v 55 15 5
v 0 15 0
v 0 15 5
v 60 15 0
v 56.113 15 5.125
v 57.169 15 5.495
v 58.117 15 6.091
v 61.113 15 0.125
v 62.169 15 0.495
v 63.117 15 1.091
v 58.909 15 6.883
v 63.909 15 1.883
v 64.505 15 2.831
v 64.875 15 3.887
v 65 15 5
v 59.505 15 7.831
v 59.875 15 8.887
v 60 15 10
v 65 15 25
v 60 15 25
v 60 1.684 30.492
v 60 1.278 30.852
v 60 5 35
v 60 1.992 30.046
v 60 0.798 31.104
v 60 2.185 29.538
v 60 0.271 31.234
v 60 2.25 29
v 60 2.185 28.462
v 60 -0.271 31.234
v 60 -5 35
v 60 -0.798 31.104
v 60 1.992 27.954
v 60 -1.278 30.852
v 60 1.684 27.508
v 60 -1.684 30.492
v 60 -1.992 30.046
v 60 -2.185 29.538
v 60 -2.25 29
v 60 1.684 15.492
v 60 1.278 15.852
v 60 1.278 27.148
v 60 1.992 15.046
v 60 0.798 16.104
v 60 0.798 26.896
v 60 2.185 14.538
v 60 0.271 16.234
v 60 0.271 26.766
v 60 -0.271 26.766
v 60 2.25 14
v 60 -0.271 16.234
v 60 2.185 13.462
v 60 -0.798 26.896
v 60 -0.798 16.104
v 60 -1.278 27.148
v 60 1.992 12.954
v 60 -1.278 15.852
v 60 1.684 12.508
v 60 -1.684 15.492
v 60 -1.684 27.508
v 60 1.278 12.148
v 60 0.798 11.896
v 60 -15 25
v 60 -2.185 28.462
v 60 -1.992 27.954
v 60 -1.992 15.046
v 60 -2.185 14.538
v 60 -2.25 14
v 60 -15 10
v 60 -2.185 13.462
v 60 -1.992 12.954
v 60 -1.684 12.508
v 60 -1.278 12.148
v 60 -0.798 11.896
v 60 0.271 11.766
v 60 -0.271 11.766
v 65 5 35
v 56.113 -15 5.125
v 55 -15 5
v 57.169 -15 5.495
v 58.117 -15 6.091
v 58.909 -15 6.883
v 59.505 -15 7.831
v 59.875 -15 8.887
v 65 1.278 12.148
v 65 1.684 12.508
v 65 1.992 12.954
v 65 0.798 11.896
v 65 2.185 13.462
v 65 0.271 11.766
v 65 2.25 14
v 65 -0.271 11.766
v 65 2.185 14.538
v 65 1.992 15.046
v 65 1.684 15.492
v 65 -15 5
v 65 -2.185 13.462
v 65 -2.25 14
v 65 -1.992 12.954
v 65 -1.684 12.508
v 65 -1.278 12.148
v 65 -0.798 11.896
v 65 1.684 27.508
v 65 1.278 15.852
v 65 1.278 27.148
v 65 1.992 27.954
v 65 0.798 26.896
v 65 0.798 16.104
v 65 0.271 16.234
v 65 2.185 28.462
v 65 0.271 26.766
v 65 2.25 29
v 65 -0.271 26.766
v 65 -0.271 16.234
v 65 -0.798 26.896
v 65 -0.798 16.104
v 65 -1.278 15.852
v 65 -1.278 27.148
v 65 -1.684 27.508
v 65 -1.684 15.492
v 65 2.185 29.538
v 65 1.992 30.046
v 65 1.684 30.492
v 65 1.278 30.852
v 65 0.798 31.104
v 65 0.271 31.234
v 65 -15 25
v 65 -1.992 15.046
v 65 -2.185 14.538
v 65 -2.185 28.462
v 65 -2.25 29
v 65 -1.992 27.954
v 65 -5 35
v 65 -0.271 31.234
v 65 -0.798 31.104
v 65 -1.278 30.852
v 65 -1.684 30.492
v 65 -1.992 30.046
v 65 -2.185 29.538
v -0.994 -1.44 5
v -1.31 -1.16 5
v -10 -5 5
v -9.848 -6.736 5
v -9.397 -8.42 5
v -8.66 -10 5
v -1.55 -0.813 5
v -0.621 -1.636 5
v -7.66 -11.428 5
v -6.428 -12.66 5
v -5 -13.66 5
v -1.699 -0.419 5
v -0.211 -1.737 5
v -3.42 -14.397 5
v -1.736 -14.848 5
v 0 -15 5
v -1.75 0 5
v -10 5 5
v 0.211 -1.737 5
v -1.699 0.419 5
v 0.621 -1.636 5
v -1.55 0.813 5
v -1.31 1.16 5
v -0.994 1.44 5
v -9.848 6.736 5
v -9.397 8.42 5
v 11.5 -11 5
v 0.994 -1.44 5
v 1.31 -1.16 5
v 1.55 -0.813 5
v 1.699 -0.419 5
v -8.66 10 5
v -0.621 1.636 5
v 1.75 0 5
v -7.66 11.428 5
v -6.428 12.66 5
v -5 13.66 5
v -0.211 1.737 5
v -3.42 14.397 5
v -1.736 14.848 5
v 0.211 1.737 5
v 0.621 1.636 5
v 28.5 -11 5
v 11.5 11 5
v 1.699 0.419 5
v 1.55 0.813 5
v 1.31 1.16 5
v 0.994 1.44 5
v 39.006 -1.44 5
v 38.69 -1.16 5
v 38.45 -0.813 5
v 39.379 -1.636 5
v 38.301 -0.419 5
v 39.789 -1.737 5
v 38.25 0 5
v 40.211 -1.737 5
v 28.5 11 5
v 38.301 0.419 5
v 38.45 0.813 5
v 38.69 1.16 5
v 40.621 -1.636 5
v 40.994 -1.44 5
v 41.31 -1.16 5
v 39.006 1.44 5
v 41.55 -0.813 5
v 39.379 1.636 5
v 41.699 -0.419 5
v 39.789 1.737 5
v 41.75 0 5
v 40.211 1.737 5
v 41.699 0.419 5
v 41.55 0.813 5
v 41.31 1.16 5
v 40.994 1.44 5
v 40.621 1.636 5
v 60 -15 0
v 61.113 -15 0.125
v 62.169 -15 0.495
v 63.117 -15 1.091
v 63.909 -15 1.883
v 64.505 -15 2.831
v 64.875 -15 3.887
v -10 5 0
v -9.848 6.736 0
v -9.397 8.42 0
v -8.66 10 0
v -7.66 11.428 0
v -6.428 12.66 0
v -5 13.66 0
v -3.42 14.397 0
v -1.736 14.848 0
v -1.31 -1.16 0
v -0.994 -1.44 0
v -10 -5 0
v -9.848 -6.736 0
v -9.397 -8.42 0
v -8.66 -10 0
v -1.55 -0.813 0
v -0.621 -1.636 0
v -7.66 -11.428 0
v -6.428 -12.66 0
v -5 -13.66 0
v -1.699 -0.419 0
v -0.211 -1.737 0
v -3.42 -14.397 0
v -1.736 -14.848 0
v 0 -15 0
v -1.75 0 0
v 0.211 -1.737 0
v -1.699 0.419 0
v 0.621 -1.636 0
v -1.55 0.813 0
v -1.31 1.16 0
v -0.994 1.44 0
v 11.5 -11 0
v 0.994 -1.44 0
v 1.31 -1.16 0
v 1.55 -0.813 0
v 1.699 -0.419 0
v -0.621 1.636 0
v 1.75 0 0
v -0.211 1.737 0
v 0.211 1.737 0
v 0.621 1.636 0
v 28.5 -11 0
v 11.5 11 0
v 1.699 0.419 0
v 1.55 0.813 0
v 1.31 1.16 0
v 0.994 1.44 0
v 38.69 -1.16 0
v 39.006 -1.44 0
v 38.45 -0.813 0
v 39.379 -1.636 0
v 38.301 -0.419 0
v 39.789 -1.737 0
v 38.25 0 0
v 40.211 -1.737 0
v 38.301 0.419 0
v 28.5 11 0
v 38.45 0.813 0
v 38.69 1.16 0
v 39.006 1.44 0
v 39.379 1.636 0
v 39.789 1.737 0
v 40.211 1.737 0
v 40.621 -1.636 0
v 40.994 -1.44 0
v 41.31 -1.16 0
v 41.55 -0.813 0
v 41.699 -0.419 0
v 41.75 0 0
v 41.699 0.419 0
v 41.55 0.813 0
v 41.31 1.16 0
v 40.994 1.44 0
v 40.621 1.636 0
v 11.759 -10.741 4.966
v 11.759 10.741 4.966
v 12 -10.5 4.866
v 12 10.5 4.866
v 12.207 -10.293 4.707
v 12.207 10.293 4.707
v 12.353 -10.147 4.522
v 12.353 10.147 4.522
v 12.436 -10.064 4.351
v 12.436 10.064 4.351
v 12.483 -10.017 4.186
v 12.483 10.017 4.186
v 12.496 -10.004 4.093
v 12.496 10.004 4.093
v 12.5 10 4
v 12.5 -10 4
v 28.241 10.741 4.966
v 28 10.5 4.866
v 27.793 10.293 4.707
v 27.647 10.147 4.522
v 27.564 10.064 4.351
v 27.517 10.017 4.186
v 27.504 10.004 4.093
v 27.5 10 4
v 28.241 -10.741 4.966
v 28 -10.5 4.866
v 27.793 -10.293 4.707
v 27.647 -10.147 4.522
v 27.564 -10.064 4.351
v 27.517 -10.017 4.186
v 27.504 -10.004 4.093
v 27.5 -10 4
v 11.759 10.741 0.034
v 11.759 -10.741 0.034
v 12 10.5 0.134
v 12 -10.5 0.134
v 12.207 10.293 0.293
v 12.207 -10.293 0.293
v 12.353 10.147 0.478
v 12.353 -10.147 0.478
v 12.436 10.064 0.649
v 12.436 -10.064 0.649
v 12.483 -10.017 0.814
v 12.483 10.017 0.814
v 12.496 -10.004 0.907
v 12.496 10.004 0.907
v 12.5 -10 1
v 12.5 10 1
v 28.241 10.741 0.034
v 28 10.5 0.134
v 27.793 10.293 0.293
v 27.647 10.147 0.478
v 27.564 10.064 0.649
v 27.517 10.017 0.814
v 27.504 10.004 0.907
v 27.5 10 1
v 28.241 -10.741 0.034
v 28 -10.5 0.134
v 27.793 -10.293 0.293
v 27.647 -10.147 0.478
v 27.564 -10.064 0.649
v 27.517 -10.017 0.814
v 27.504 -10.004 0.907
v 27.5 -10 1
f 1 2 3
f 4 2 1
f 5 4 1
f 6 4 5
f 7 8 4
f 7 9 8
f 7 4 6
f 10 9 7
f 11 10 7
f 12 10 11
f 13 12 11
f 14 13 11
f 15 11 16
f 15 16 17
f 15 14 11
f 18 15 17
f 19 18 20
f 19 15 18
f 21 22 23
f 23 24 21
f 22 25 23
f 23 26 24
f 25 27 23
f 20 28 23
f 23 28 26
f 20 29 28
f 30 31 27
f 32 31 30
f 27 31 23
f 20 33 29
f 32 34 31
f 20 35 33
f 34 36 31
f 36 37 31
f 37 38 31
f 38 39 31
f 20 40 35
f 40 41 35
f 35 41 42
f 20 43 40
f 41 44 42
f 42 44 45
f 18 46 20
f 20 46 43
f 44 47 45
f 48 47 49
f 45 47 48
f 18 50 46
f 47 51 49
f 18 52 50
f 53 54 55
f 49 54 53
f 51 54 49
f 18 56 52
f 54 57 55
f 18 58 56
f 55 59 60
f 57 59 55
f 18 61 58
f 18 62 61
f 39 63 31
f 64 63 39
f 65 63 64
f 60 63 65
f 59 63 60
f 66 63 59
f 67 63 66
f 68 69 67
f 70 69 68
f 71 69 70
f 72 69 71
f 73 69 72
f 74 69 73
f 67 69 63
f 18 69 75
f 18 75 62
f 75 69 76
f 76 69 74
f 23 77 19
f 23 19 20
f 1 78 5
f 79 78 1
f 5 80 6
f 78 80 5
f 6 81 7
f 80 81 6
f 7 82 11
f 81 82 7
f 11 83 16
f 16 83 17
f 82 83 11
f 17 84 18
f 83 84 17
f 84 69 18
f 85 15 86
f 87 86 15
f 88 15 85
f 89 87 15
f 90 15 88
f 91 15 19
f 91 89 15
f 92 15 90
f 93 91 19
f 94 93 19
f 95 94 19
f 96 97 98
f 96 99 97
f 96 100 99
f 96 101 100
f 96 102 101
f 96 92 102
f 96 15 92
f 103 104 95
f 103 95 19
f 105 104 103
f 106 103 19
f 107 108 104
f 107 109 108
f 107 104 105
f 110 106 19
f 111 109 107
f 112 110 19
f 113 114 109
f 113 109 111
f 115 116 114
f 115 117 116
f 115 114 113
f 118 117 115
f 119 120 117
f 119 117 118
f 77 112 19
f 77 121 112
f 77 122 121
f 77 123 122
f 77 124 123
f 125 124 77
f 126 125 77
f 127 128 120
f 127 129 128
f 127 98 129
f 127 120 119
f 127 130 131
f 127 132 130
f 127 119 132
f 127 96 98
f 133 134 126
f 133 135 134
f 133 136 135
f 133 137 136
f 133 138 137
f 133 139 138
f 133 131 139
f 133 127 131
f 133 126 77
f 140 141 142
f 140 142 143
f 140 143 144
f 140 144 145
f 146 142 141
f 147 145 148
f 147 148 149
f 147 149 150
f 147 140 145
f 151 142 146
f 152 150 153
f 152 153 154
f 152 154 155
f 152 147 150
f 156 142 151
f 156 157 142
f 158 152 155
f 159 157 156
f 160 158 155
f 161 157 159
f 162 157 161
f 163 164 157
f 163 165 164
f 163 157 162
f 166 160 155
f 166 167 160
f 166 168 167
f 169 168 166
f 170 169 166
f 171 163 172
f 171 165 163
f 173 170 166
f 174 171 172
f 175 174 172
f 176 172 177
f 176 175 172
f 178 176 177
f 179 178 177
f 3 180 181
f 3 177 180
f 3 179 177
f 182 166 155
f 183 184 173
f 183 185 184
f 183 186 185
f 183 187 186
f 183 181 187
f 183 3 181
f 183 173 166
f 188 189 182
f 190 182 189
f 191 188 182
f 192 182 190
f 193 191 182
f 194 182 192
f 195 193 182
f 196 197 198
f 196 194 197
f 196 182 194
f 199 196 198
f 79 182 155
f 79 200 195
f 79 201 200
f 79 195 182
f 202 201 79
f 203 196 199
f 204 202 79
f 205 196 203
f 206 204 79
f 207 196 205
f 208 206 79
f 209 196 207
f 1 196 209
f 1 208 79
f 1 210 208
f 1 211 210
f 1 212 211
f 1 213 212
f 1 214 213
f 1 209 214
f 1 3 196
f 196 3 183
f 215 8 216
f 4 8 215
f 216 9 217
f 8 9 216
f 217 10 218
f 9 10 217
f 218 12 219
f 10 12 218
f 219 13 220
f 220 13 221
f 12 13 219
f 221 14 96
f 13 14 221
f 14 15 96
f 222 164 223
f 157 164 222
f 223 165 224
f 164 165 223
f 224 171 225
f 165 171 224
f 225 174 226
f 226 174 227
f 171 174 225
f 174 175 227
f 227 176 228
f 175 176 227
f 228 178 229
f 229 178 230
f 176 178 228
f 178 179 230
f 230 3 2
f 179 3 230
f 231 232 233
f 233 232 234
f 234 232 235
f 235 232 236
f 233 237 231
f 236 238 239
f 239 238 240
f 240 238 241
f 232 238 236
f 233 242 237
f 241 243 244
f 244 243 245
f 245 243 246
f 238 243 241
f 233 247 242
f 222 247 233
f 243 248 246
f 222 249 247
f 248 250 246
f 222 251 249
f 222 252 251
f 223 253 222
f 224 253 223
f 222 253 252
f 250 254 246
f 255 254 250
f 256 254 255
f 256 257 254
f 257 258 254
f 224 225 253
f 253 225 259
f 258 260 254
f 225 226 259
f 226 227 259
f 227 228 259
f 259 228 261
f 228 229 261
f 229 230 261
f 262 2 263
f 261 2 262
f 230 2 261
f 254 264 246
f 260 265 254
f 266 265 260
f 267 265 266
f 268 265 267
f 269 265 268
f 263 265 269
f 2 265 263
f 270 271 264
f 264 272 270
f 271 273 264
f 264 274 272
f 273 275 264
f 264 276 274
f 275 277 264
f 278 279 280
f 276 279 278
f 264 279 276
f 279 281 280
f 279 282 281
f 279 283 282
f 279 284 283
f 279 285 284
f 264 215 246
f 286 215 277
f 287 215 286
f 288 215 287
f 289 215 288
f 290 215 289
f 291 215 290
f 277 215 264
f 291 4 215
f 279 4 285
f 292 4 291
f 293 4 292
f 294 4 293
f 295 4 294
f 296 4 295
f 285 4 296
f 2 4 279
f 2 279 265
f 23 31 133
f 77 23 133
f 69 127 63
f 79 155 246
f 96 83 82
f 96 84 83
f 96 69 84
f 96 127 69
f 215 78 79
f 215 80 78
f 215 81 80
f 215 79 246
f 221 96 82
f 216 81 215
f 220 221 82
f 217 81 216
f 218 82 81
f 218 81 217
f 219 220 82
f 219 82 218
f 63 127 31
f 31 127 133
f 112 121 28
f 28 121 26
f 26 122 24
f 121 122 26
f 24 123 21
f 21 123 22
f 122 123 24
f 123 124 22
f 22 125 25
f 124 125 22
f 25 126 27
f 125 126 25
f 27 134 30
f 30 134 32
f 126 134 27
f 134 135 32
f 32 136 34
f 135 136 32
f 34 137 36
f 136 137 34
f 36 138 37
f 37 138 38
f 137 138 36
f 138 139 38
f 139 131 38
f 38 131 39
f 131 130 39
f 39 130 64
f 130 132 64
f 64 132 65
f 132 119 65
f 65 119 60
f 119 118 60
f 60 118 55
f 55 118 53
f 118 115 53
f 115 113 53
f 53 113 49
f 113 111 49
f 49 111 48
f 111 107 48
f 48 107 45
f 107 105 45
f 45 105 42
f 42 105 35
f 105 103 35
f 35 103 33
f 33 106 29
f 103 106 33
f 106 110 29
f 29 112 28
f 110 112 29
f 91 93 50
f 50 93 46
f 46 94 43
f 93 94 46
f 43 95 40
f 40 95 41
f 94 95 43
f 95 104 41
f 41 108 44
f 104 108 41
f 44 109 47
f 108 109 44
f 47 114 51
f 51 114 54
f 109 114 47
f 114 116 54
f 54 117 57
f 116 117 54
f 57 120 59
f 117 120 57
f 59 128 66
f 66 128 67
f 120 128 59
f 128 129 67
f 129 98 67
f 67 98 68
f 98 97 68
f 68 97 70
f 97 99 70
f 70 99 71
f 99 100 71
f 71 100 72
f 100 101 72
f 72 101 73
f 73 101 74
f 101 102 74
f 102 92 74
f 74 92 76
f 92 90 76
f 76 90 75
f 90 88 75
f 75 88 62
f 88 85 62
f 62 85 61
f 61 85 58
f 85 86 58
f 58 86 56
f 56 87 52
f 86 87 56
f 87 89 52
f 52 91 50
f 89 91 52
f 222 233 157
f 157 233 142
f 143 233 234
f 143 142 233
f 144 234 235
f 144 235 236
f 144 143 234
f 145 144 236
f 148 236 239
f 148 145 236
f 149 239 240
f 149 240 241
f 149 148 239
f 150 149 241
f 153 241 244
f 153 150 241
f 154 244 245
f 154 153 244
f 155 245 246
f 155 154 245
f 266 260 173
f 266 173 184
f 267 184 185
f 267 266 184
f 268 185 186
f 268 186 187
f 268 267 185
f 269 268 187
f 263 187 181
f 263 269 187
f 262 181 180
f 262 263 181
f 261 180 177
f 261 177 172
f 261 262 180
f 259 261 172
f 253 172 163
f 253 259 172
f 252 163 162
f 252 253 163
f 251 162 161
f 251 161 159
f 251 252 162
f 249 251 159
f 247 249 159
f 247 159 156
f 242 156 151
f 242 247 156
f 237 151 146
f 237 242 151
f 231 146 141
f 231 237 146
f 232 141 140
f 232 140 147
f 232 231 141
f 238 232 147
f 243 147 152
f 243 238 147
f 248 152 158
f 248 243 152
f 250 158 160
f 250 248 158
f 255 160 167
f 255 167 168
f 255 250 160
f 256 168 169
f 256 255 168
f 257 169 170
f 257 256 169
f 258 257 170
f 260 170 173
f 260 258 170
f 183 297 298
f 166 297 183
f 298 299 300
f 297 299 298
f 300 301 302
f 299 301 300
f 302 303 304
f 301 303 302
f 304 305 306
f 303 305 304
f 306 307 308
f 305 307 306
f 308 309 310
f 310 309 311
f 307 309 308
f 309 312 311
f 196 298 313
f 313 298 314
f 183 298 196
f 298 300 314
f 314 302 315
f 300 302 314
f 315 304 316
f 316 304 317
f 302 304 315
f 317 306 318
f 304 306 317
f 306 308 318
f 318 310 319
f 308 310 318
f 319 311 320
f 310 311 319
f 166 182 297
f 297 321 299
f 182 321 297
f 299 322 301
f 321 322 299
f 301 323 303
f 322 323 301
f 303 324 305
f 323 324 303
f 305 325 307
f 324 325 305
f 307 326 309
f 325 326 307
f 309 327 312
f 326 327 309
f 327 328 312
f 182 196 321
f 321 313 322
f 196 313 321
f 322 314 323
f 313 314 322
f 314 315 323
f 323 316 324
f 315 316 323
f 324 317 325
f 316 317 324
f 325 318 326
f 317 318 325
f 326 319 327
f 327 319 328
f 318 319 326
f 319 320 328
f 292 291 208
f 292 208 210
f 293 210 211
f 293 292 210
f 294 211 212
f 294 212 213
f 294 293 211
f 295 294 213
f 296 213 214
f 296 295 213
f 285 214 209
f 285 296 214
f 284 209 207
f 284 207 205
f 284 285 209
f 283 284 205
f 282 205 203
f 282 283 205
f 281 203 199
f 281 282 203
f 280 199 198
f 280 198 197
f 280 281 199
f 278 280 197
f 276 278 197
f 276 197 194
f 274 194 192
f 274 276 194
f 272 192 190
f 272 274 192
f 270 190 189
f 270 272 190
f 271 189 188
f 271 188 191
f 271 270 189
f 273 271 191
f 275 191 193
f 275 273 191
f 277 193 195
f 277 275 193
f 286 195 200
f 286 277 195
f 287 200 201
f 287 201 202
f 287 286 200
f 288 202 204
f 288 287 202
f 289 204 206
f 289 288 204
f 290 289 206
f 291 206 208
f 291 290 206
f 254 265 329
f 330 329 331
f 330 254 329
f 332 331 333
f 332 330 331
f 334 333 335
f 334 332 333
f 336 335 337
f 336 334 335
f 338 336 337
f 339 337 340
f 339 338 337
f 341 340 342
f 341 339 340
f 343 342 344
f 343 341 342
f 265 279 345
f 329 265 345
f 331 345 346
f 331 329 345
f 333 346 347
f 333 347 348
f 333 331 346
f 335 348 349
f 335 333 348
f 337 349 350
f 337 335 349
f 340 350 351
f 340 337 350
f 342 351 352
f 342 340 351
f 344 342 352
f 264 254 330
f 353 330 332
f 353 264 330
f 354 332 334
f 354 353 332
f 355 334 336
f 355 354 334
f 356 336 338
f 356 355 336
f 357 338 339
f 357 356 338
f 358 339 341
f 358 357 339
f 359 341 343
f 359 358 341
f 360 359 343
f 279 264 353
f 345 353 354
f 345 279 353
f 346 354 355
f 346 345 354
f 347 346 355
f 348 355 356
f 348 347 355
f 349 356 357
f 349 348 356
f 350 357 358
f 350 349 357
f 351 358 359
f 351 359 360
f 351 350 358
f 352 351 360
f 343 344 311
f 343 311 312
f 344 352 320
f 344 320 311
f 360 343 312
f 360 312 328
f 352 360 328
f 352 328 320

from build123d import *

# Parameters (mm, degrees)
SKETCH_W     = 75
SKETCH_H     = 30
SKETCH_R     = 1.75
SKETCH_W_2   = 15
SKETCH_H_2   = 20
PAD_DEPTH    = 5
FILLET_R     = 10
FILLET001_R  = 1
SKETCH001_W  = 5
SKETCH001_H  = 30
PAD001_DEPTH = 30
FILLET002_R  = 5
FILLET003_R  = 5
SKETCH002_R  = 2.25
POCKET_DEPTH = 75.001
CHAMFER_SIZE = 10


with BuildPart() as part:
    # Sketch → Pad (new body)
    with BuildSketch(Plane.XY):
        with Locations((27.5, 0)):
            Rectangle(SKETCH_W, SKETCH_H)
        Circle(SKETCH_R, mode=Mode.SUBTRACT)
        with Locations((40, 0)):
            Circle(SKETCH_R, mode=Mode.SUBTRACT)
        with Locations((20, 0)):
            Rectangle(SKETCH_W_2, SKETCH_H_2, mode=Mode.SUBTRACT)
    extrude(amount=PAD_DEPTH)

    # Fillet
    fillet_edges = [part.edges().sort_by_distance(p)[0] for p in [
        (-10, 15, 2.5),
        (-10, -15, 2.5),
    ]]
    fillet(fillet_edges, radius=FILLET_R)

    # Fillet001
    fillet001_edges = [part.edges().sort_by_distance(p)[0] for p in [
        (12.5, 0, 5),
        (12.5, 0, 0),
        (20, 10, 0),
        (20, 10, 5),
        (27.5, 0, 5),
        (20, -10, 5),
        (27.5, 0, 0),
        (20, -10, 0),
    ]]
    fillet(fillet001_edges, radius=FILLET001_R)

    # Sketch001 (on Face18 of Fillet001) → Pad001 (join)
    with BuildSketch(Plane.XY.offset(5)):
        with Locations((62.5, 0)):
            Rectangle(SKETCH001_W, SKETCH001_H)
    extrude(amount=PAD001_DEPTH)

    # Fillet002
    fillet002_edges = [part.edges().sort_by_distance(p)[0] for p in [
        (65, 0, 0),
    ]]
    fillet(fillet002_edges, radius=FILLET002_R)

    # Fillet003
    fillet003_edges = [part.edges().sort_by_distance(p)[0] for p in [
        (60, 0, 5),
    ]]
    fillet(fillet003_edges, radius=FILLET003_R)

    # Sketch002 (on Face9 of Fillet003) → Pocket (cut, through all)
    with BuildSketch(Plane.YZ.offset(65)):
        with Locations((0, 29)):
            Circle(SKETCH002_R)
        with Locations((0, 14)):
            Circle(SKETCH002_R)
    extrude(amount=-POCKET_DEPTH, mode=Mode.SUBTRACT)

    # Chamfer
    chamfer_edges = [part.edges().sort_by_distance(p)[0] for p in [
        (62.5, -15, 35),
        (62.5, 15, 35),
    ]]
    chamfer(chamfer_edges, length=CHAMFER_SIZE)


solid = part.part
